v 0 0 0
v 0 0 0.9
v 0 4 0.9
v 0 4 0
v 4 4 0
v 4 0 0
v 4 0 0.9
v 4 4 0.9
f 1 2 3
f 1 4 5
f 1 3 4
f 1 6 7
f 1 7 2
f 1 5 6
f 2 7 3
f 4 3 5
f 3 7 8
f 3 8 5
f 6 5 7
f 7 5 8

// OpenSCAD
/* Warning, this is a very basic generator with a lot of approximation 
input data : [VQFN, RMB, 4x4x0.9mm, 24, , A, C04-21387A]
generated by com.zoubworld.electronics.cad.model3d.Basic
Date : Sun Feb 15 10:50:49 CET 2026
*/

//body
color("black")
translate([0,0,0])
cube([4.0,4.0,0.9], center=false);
